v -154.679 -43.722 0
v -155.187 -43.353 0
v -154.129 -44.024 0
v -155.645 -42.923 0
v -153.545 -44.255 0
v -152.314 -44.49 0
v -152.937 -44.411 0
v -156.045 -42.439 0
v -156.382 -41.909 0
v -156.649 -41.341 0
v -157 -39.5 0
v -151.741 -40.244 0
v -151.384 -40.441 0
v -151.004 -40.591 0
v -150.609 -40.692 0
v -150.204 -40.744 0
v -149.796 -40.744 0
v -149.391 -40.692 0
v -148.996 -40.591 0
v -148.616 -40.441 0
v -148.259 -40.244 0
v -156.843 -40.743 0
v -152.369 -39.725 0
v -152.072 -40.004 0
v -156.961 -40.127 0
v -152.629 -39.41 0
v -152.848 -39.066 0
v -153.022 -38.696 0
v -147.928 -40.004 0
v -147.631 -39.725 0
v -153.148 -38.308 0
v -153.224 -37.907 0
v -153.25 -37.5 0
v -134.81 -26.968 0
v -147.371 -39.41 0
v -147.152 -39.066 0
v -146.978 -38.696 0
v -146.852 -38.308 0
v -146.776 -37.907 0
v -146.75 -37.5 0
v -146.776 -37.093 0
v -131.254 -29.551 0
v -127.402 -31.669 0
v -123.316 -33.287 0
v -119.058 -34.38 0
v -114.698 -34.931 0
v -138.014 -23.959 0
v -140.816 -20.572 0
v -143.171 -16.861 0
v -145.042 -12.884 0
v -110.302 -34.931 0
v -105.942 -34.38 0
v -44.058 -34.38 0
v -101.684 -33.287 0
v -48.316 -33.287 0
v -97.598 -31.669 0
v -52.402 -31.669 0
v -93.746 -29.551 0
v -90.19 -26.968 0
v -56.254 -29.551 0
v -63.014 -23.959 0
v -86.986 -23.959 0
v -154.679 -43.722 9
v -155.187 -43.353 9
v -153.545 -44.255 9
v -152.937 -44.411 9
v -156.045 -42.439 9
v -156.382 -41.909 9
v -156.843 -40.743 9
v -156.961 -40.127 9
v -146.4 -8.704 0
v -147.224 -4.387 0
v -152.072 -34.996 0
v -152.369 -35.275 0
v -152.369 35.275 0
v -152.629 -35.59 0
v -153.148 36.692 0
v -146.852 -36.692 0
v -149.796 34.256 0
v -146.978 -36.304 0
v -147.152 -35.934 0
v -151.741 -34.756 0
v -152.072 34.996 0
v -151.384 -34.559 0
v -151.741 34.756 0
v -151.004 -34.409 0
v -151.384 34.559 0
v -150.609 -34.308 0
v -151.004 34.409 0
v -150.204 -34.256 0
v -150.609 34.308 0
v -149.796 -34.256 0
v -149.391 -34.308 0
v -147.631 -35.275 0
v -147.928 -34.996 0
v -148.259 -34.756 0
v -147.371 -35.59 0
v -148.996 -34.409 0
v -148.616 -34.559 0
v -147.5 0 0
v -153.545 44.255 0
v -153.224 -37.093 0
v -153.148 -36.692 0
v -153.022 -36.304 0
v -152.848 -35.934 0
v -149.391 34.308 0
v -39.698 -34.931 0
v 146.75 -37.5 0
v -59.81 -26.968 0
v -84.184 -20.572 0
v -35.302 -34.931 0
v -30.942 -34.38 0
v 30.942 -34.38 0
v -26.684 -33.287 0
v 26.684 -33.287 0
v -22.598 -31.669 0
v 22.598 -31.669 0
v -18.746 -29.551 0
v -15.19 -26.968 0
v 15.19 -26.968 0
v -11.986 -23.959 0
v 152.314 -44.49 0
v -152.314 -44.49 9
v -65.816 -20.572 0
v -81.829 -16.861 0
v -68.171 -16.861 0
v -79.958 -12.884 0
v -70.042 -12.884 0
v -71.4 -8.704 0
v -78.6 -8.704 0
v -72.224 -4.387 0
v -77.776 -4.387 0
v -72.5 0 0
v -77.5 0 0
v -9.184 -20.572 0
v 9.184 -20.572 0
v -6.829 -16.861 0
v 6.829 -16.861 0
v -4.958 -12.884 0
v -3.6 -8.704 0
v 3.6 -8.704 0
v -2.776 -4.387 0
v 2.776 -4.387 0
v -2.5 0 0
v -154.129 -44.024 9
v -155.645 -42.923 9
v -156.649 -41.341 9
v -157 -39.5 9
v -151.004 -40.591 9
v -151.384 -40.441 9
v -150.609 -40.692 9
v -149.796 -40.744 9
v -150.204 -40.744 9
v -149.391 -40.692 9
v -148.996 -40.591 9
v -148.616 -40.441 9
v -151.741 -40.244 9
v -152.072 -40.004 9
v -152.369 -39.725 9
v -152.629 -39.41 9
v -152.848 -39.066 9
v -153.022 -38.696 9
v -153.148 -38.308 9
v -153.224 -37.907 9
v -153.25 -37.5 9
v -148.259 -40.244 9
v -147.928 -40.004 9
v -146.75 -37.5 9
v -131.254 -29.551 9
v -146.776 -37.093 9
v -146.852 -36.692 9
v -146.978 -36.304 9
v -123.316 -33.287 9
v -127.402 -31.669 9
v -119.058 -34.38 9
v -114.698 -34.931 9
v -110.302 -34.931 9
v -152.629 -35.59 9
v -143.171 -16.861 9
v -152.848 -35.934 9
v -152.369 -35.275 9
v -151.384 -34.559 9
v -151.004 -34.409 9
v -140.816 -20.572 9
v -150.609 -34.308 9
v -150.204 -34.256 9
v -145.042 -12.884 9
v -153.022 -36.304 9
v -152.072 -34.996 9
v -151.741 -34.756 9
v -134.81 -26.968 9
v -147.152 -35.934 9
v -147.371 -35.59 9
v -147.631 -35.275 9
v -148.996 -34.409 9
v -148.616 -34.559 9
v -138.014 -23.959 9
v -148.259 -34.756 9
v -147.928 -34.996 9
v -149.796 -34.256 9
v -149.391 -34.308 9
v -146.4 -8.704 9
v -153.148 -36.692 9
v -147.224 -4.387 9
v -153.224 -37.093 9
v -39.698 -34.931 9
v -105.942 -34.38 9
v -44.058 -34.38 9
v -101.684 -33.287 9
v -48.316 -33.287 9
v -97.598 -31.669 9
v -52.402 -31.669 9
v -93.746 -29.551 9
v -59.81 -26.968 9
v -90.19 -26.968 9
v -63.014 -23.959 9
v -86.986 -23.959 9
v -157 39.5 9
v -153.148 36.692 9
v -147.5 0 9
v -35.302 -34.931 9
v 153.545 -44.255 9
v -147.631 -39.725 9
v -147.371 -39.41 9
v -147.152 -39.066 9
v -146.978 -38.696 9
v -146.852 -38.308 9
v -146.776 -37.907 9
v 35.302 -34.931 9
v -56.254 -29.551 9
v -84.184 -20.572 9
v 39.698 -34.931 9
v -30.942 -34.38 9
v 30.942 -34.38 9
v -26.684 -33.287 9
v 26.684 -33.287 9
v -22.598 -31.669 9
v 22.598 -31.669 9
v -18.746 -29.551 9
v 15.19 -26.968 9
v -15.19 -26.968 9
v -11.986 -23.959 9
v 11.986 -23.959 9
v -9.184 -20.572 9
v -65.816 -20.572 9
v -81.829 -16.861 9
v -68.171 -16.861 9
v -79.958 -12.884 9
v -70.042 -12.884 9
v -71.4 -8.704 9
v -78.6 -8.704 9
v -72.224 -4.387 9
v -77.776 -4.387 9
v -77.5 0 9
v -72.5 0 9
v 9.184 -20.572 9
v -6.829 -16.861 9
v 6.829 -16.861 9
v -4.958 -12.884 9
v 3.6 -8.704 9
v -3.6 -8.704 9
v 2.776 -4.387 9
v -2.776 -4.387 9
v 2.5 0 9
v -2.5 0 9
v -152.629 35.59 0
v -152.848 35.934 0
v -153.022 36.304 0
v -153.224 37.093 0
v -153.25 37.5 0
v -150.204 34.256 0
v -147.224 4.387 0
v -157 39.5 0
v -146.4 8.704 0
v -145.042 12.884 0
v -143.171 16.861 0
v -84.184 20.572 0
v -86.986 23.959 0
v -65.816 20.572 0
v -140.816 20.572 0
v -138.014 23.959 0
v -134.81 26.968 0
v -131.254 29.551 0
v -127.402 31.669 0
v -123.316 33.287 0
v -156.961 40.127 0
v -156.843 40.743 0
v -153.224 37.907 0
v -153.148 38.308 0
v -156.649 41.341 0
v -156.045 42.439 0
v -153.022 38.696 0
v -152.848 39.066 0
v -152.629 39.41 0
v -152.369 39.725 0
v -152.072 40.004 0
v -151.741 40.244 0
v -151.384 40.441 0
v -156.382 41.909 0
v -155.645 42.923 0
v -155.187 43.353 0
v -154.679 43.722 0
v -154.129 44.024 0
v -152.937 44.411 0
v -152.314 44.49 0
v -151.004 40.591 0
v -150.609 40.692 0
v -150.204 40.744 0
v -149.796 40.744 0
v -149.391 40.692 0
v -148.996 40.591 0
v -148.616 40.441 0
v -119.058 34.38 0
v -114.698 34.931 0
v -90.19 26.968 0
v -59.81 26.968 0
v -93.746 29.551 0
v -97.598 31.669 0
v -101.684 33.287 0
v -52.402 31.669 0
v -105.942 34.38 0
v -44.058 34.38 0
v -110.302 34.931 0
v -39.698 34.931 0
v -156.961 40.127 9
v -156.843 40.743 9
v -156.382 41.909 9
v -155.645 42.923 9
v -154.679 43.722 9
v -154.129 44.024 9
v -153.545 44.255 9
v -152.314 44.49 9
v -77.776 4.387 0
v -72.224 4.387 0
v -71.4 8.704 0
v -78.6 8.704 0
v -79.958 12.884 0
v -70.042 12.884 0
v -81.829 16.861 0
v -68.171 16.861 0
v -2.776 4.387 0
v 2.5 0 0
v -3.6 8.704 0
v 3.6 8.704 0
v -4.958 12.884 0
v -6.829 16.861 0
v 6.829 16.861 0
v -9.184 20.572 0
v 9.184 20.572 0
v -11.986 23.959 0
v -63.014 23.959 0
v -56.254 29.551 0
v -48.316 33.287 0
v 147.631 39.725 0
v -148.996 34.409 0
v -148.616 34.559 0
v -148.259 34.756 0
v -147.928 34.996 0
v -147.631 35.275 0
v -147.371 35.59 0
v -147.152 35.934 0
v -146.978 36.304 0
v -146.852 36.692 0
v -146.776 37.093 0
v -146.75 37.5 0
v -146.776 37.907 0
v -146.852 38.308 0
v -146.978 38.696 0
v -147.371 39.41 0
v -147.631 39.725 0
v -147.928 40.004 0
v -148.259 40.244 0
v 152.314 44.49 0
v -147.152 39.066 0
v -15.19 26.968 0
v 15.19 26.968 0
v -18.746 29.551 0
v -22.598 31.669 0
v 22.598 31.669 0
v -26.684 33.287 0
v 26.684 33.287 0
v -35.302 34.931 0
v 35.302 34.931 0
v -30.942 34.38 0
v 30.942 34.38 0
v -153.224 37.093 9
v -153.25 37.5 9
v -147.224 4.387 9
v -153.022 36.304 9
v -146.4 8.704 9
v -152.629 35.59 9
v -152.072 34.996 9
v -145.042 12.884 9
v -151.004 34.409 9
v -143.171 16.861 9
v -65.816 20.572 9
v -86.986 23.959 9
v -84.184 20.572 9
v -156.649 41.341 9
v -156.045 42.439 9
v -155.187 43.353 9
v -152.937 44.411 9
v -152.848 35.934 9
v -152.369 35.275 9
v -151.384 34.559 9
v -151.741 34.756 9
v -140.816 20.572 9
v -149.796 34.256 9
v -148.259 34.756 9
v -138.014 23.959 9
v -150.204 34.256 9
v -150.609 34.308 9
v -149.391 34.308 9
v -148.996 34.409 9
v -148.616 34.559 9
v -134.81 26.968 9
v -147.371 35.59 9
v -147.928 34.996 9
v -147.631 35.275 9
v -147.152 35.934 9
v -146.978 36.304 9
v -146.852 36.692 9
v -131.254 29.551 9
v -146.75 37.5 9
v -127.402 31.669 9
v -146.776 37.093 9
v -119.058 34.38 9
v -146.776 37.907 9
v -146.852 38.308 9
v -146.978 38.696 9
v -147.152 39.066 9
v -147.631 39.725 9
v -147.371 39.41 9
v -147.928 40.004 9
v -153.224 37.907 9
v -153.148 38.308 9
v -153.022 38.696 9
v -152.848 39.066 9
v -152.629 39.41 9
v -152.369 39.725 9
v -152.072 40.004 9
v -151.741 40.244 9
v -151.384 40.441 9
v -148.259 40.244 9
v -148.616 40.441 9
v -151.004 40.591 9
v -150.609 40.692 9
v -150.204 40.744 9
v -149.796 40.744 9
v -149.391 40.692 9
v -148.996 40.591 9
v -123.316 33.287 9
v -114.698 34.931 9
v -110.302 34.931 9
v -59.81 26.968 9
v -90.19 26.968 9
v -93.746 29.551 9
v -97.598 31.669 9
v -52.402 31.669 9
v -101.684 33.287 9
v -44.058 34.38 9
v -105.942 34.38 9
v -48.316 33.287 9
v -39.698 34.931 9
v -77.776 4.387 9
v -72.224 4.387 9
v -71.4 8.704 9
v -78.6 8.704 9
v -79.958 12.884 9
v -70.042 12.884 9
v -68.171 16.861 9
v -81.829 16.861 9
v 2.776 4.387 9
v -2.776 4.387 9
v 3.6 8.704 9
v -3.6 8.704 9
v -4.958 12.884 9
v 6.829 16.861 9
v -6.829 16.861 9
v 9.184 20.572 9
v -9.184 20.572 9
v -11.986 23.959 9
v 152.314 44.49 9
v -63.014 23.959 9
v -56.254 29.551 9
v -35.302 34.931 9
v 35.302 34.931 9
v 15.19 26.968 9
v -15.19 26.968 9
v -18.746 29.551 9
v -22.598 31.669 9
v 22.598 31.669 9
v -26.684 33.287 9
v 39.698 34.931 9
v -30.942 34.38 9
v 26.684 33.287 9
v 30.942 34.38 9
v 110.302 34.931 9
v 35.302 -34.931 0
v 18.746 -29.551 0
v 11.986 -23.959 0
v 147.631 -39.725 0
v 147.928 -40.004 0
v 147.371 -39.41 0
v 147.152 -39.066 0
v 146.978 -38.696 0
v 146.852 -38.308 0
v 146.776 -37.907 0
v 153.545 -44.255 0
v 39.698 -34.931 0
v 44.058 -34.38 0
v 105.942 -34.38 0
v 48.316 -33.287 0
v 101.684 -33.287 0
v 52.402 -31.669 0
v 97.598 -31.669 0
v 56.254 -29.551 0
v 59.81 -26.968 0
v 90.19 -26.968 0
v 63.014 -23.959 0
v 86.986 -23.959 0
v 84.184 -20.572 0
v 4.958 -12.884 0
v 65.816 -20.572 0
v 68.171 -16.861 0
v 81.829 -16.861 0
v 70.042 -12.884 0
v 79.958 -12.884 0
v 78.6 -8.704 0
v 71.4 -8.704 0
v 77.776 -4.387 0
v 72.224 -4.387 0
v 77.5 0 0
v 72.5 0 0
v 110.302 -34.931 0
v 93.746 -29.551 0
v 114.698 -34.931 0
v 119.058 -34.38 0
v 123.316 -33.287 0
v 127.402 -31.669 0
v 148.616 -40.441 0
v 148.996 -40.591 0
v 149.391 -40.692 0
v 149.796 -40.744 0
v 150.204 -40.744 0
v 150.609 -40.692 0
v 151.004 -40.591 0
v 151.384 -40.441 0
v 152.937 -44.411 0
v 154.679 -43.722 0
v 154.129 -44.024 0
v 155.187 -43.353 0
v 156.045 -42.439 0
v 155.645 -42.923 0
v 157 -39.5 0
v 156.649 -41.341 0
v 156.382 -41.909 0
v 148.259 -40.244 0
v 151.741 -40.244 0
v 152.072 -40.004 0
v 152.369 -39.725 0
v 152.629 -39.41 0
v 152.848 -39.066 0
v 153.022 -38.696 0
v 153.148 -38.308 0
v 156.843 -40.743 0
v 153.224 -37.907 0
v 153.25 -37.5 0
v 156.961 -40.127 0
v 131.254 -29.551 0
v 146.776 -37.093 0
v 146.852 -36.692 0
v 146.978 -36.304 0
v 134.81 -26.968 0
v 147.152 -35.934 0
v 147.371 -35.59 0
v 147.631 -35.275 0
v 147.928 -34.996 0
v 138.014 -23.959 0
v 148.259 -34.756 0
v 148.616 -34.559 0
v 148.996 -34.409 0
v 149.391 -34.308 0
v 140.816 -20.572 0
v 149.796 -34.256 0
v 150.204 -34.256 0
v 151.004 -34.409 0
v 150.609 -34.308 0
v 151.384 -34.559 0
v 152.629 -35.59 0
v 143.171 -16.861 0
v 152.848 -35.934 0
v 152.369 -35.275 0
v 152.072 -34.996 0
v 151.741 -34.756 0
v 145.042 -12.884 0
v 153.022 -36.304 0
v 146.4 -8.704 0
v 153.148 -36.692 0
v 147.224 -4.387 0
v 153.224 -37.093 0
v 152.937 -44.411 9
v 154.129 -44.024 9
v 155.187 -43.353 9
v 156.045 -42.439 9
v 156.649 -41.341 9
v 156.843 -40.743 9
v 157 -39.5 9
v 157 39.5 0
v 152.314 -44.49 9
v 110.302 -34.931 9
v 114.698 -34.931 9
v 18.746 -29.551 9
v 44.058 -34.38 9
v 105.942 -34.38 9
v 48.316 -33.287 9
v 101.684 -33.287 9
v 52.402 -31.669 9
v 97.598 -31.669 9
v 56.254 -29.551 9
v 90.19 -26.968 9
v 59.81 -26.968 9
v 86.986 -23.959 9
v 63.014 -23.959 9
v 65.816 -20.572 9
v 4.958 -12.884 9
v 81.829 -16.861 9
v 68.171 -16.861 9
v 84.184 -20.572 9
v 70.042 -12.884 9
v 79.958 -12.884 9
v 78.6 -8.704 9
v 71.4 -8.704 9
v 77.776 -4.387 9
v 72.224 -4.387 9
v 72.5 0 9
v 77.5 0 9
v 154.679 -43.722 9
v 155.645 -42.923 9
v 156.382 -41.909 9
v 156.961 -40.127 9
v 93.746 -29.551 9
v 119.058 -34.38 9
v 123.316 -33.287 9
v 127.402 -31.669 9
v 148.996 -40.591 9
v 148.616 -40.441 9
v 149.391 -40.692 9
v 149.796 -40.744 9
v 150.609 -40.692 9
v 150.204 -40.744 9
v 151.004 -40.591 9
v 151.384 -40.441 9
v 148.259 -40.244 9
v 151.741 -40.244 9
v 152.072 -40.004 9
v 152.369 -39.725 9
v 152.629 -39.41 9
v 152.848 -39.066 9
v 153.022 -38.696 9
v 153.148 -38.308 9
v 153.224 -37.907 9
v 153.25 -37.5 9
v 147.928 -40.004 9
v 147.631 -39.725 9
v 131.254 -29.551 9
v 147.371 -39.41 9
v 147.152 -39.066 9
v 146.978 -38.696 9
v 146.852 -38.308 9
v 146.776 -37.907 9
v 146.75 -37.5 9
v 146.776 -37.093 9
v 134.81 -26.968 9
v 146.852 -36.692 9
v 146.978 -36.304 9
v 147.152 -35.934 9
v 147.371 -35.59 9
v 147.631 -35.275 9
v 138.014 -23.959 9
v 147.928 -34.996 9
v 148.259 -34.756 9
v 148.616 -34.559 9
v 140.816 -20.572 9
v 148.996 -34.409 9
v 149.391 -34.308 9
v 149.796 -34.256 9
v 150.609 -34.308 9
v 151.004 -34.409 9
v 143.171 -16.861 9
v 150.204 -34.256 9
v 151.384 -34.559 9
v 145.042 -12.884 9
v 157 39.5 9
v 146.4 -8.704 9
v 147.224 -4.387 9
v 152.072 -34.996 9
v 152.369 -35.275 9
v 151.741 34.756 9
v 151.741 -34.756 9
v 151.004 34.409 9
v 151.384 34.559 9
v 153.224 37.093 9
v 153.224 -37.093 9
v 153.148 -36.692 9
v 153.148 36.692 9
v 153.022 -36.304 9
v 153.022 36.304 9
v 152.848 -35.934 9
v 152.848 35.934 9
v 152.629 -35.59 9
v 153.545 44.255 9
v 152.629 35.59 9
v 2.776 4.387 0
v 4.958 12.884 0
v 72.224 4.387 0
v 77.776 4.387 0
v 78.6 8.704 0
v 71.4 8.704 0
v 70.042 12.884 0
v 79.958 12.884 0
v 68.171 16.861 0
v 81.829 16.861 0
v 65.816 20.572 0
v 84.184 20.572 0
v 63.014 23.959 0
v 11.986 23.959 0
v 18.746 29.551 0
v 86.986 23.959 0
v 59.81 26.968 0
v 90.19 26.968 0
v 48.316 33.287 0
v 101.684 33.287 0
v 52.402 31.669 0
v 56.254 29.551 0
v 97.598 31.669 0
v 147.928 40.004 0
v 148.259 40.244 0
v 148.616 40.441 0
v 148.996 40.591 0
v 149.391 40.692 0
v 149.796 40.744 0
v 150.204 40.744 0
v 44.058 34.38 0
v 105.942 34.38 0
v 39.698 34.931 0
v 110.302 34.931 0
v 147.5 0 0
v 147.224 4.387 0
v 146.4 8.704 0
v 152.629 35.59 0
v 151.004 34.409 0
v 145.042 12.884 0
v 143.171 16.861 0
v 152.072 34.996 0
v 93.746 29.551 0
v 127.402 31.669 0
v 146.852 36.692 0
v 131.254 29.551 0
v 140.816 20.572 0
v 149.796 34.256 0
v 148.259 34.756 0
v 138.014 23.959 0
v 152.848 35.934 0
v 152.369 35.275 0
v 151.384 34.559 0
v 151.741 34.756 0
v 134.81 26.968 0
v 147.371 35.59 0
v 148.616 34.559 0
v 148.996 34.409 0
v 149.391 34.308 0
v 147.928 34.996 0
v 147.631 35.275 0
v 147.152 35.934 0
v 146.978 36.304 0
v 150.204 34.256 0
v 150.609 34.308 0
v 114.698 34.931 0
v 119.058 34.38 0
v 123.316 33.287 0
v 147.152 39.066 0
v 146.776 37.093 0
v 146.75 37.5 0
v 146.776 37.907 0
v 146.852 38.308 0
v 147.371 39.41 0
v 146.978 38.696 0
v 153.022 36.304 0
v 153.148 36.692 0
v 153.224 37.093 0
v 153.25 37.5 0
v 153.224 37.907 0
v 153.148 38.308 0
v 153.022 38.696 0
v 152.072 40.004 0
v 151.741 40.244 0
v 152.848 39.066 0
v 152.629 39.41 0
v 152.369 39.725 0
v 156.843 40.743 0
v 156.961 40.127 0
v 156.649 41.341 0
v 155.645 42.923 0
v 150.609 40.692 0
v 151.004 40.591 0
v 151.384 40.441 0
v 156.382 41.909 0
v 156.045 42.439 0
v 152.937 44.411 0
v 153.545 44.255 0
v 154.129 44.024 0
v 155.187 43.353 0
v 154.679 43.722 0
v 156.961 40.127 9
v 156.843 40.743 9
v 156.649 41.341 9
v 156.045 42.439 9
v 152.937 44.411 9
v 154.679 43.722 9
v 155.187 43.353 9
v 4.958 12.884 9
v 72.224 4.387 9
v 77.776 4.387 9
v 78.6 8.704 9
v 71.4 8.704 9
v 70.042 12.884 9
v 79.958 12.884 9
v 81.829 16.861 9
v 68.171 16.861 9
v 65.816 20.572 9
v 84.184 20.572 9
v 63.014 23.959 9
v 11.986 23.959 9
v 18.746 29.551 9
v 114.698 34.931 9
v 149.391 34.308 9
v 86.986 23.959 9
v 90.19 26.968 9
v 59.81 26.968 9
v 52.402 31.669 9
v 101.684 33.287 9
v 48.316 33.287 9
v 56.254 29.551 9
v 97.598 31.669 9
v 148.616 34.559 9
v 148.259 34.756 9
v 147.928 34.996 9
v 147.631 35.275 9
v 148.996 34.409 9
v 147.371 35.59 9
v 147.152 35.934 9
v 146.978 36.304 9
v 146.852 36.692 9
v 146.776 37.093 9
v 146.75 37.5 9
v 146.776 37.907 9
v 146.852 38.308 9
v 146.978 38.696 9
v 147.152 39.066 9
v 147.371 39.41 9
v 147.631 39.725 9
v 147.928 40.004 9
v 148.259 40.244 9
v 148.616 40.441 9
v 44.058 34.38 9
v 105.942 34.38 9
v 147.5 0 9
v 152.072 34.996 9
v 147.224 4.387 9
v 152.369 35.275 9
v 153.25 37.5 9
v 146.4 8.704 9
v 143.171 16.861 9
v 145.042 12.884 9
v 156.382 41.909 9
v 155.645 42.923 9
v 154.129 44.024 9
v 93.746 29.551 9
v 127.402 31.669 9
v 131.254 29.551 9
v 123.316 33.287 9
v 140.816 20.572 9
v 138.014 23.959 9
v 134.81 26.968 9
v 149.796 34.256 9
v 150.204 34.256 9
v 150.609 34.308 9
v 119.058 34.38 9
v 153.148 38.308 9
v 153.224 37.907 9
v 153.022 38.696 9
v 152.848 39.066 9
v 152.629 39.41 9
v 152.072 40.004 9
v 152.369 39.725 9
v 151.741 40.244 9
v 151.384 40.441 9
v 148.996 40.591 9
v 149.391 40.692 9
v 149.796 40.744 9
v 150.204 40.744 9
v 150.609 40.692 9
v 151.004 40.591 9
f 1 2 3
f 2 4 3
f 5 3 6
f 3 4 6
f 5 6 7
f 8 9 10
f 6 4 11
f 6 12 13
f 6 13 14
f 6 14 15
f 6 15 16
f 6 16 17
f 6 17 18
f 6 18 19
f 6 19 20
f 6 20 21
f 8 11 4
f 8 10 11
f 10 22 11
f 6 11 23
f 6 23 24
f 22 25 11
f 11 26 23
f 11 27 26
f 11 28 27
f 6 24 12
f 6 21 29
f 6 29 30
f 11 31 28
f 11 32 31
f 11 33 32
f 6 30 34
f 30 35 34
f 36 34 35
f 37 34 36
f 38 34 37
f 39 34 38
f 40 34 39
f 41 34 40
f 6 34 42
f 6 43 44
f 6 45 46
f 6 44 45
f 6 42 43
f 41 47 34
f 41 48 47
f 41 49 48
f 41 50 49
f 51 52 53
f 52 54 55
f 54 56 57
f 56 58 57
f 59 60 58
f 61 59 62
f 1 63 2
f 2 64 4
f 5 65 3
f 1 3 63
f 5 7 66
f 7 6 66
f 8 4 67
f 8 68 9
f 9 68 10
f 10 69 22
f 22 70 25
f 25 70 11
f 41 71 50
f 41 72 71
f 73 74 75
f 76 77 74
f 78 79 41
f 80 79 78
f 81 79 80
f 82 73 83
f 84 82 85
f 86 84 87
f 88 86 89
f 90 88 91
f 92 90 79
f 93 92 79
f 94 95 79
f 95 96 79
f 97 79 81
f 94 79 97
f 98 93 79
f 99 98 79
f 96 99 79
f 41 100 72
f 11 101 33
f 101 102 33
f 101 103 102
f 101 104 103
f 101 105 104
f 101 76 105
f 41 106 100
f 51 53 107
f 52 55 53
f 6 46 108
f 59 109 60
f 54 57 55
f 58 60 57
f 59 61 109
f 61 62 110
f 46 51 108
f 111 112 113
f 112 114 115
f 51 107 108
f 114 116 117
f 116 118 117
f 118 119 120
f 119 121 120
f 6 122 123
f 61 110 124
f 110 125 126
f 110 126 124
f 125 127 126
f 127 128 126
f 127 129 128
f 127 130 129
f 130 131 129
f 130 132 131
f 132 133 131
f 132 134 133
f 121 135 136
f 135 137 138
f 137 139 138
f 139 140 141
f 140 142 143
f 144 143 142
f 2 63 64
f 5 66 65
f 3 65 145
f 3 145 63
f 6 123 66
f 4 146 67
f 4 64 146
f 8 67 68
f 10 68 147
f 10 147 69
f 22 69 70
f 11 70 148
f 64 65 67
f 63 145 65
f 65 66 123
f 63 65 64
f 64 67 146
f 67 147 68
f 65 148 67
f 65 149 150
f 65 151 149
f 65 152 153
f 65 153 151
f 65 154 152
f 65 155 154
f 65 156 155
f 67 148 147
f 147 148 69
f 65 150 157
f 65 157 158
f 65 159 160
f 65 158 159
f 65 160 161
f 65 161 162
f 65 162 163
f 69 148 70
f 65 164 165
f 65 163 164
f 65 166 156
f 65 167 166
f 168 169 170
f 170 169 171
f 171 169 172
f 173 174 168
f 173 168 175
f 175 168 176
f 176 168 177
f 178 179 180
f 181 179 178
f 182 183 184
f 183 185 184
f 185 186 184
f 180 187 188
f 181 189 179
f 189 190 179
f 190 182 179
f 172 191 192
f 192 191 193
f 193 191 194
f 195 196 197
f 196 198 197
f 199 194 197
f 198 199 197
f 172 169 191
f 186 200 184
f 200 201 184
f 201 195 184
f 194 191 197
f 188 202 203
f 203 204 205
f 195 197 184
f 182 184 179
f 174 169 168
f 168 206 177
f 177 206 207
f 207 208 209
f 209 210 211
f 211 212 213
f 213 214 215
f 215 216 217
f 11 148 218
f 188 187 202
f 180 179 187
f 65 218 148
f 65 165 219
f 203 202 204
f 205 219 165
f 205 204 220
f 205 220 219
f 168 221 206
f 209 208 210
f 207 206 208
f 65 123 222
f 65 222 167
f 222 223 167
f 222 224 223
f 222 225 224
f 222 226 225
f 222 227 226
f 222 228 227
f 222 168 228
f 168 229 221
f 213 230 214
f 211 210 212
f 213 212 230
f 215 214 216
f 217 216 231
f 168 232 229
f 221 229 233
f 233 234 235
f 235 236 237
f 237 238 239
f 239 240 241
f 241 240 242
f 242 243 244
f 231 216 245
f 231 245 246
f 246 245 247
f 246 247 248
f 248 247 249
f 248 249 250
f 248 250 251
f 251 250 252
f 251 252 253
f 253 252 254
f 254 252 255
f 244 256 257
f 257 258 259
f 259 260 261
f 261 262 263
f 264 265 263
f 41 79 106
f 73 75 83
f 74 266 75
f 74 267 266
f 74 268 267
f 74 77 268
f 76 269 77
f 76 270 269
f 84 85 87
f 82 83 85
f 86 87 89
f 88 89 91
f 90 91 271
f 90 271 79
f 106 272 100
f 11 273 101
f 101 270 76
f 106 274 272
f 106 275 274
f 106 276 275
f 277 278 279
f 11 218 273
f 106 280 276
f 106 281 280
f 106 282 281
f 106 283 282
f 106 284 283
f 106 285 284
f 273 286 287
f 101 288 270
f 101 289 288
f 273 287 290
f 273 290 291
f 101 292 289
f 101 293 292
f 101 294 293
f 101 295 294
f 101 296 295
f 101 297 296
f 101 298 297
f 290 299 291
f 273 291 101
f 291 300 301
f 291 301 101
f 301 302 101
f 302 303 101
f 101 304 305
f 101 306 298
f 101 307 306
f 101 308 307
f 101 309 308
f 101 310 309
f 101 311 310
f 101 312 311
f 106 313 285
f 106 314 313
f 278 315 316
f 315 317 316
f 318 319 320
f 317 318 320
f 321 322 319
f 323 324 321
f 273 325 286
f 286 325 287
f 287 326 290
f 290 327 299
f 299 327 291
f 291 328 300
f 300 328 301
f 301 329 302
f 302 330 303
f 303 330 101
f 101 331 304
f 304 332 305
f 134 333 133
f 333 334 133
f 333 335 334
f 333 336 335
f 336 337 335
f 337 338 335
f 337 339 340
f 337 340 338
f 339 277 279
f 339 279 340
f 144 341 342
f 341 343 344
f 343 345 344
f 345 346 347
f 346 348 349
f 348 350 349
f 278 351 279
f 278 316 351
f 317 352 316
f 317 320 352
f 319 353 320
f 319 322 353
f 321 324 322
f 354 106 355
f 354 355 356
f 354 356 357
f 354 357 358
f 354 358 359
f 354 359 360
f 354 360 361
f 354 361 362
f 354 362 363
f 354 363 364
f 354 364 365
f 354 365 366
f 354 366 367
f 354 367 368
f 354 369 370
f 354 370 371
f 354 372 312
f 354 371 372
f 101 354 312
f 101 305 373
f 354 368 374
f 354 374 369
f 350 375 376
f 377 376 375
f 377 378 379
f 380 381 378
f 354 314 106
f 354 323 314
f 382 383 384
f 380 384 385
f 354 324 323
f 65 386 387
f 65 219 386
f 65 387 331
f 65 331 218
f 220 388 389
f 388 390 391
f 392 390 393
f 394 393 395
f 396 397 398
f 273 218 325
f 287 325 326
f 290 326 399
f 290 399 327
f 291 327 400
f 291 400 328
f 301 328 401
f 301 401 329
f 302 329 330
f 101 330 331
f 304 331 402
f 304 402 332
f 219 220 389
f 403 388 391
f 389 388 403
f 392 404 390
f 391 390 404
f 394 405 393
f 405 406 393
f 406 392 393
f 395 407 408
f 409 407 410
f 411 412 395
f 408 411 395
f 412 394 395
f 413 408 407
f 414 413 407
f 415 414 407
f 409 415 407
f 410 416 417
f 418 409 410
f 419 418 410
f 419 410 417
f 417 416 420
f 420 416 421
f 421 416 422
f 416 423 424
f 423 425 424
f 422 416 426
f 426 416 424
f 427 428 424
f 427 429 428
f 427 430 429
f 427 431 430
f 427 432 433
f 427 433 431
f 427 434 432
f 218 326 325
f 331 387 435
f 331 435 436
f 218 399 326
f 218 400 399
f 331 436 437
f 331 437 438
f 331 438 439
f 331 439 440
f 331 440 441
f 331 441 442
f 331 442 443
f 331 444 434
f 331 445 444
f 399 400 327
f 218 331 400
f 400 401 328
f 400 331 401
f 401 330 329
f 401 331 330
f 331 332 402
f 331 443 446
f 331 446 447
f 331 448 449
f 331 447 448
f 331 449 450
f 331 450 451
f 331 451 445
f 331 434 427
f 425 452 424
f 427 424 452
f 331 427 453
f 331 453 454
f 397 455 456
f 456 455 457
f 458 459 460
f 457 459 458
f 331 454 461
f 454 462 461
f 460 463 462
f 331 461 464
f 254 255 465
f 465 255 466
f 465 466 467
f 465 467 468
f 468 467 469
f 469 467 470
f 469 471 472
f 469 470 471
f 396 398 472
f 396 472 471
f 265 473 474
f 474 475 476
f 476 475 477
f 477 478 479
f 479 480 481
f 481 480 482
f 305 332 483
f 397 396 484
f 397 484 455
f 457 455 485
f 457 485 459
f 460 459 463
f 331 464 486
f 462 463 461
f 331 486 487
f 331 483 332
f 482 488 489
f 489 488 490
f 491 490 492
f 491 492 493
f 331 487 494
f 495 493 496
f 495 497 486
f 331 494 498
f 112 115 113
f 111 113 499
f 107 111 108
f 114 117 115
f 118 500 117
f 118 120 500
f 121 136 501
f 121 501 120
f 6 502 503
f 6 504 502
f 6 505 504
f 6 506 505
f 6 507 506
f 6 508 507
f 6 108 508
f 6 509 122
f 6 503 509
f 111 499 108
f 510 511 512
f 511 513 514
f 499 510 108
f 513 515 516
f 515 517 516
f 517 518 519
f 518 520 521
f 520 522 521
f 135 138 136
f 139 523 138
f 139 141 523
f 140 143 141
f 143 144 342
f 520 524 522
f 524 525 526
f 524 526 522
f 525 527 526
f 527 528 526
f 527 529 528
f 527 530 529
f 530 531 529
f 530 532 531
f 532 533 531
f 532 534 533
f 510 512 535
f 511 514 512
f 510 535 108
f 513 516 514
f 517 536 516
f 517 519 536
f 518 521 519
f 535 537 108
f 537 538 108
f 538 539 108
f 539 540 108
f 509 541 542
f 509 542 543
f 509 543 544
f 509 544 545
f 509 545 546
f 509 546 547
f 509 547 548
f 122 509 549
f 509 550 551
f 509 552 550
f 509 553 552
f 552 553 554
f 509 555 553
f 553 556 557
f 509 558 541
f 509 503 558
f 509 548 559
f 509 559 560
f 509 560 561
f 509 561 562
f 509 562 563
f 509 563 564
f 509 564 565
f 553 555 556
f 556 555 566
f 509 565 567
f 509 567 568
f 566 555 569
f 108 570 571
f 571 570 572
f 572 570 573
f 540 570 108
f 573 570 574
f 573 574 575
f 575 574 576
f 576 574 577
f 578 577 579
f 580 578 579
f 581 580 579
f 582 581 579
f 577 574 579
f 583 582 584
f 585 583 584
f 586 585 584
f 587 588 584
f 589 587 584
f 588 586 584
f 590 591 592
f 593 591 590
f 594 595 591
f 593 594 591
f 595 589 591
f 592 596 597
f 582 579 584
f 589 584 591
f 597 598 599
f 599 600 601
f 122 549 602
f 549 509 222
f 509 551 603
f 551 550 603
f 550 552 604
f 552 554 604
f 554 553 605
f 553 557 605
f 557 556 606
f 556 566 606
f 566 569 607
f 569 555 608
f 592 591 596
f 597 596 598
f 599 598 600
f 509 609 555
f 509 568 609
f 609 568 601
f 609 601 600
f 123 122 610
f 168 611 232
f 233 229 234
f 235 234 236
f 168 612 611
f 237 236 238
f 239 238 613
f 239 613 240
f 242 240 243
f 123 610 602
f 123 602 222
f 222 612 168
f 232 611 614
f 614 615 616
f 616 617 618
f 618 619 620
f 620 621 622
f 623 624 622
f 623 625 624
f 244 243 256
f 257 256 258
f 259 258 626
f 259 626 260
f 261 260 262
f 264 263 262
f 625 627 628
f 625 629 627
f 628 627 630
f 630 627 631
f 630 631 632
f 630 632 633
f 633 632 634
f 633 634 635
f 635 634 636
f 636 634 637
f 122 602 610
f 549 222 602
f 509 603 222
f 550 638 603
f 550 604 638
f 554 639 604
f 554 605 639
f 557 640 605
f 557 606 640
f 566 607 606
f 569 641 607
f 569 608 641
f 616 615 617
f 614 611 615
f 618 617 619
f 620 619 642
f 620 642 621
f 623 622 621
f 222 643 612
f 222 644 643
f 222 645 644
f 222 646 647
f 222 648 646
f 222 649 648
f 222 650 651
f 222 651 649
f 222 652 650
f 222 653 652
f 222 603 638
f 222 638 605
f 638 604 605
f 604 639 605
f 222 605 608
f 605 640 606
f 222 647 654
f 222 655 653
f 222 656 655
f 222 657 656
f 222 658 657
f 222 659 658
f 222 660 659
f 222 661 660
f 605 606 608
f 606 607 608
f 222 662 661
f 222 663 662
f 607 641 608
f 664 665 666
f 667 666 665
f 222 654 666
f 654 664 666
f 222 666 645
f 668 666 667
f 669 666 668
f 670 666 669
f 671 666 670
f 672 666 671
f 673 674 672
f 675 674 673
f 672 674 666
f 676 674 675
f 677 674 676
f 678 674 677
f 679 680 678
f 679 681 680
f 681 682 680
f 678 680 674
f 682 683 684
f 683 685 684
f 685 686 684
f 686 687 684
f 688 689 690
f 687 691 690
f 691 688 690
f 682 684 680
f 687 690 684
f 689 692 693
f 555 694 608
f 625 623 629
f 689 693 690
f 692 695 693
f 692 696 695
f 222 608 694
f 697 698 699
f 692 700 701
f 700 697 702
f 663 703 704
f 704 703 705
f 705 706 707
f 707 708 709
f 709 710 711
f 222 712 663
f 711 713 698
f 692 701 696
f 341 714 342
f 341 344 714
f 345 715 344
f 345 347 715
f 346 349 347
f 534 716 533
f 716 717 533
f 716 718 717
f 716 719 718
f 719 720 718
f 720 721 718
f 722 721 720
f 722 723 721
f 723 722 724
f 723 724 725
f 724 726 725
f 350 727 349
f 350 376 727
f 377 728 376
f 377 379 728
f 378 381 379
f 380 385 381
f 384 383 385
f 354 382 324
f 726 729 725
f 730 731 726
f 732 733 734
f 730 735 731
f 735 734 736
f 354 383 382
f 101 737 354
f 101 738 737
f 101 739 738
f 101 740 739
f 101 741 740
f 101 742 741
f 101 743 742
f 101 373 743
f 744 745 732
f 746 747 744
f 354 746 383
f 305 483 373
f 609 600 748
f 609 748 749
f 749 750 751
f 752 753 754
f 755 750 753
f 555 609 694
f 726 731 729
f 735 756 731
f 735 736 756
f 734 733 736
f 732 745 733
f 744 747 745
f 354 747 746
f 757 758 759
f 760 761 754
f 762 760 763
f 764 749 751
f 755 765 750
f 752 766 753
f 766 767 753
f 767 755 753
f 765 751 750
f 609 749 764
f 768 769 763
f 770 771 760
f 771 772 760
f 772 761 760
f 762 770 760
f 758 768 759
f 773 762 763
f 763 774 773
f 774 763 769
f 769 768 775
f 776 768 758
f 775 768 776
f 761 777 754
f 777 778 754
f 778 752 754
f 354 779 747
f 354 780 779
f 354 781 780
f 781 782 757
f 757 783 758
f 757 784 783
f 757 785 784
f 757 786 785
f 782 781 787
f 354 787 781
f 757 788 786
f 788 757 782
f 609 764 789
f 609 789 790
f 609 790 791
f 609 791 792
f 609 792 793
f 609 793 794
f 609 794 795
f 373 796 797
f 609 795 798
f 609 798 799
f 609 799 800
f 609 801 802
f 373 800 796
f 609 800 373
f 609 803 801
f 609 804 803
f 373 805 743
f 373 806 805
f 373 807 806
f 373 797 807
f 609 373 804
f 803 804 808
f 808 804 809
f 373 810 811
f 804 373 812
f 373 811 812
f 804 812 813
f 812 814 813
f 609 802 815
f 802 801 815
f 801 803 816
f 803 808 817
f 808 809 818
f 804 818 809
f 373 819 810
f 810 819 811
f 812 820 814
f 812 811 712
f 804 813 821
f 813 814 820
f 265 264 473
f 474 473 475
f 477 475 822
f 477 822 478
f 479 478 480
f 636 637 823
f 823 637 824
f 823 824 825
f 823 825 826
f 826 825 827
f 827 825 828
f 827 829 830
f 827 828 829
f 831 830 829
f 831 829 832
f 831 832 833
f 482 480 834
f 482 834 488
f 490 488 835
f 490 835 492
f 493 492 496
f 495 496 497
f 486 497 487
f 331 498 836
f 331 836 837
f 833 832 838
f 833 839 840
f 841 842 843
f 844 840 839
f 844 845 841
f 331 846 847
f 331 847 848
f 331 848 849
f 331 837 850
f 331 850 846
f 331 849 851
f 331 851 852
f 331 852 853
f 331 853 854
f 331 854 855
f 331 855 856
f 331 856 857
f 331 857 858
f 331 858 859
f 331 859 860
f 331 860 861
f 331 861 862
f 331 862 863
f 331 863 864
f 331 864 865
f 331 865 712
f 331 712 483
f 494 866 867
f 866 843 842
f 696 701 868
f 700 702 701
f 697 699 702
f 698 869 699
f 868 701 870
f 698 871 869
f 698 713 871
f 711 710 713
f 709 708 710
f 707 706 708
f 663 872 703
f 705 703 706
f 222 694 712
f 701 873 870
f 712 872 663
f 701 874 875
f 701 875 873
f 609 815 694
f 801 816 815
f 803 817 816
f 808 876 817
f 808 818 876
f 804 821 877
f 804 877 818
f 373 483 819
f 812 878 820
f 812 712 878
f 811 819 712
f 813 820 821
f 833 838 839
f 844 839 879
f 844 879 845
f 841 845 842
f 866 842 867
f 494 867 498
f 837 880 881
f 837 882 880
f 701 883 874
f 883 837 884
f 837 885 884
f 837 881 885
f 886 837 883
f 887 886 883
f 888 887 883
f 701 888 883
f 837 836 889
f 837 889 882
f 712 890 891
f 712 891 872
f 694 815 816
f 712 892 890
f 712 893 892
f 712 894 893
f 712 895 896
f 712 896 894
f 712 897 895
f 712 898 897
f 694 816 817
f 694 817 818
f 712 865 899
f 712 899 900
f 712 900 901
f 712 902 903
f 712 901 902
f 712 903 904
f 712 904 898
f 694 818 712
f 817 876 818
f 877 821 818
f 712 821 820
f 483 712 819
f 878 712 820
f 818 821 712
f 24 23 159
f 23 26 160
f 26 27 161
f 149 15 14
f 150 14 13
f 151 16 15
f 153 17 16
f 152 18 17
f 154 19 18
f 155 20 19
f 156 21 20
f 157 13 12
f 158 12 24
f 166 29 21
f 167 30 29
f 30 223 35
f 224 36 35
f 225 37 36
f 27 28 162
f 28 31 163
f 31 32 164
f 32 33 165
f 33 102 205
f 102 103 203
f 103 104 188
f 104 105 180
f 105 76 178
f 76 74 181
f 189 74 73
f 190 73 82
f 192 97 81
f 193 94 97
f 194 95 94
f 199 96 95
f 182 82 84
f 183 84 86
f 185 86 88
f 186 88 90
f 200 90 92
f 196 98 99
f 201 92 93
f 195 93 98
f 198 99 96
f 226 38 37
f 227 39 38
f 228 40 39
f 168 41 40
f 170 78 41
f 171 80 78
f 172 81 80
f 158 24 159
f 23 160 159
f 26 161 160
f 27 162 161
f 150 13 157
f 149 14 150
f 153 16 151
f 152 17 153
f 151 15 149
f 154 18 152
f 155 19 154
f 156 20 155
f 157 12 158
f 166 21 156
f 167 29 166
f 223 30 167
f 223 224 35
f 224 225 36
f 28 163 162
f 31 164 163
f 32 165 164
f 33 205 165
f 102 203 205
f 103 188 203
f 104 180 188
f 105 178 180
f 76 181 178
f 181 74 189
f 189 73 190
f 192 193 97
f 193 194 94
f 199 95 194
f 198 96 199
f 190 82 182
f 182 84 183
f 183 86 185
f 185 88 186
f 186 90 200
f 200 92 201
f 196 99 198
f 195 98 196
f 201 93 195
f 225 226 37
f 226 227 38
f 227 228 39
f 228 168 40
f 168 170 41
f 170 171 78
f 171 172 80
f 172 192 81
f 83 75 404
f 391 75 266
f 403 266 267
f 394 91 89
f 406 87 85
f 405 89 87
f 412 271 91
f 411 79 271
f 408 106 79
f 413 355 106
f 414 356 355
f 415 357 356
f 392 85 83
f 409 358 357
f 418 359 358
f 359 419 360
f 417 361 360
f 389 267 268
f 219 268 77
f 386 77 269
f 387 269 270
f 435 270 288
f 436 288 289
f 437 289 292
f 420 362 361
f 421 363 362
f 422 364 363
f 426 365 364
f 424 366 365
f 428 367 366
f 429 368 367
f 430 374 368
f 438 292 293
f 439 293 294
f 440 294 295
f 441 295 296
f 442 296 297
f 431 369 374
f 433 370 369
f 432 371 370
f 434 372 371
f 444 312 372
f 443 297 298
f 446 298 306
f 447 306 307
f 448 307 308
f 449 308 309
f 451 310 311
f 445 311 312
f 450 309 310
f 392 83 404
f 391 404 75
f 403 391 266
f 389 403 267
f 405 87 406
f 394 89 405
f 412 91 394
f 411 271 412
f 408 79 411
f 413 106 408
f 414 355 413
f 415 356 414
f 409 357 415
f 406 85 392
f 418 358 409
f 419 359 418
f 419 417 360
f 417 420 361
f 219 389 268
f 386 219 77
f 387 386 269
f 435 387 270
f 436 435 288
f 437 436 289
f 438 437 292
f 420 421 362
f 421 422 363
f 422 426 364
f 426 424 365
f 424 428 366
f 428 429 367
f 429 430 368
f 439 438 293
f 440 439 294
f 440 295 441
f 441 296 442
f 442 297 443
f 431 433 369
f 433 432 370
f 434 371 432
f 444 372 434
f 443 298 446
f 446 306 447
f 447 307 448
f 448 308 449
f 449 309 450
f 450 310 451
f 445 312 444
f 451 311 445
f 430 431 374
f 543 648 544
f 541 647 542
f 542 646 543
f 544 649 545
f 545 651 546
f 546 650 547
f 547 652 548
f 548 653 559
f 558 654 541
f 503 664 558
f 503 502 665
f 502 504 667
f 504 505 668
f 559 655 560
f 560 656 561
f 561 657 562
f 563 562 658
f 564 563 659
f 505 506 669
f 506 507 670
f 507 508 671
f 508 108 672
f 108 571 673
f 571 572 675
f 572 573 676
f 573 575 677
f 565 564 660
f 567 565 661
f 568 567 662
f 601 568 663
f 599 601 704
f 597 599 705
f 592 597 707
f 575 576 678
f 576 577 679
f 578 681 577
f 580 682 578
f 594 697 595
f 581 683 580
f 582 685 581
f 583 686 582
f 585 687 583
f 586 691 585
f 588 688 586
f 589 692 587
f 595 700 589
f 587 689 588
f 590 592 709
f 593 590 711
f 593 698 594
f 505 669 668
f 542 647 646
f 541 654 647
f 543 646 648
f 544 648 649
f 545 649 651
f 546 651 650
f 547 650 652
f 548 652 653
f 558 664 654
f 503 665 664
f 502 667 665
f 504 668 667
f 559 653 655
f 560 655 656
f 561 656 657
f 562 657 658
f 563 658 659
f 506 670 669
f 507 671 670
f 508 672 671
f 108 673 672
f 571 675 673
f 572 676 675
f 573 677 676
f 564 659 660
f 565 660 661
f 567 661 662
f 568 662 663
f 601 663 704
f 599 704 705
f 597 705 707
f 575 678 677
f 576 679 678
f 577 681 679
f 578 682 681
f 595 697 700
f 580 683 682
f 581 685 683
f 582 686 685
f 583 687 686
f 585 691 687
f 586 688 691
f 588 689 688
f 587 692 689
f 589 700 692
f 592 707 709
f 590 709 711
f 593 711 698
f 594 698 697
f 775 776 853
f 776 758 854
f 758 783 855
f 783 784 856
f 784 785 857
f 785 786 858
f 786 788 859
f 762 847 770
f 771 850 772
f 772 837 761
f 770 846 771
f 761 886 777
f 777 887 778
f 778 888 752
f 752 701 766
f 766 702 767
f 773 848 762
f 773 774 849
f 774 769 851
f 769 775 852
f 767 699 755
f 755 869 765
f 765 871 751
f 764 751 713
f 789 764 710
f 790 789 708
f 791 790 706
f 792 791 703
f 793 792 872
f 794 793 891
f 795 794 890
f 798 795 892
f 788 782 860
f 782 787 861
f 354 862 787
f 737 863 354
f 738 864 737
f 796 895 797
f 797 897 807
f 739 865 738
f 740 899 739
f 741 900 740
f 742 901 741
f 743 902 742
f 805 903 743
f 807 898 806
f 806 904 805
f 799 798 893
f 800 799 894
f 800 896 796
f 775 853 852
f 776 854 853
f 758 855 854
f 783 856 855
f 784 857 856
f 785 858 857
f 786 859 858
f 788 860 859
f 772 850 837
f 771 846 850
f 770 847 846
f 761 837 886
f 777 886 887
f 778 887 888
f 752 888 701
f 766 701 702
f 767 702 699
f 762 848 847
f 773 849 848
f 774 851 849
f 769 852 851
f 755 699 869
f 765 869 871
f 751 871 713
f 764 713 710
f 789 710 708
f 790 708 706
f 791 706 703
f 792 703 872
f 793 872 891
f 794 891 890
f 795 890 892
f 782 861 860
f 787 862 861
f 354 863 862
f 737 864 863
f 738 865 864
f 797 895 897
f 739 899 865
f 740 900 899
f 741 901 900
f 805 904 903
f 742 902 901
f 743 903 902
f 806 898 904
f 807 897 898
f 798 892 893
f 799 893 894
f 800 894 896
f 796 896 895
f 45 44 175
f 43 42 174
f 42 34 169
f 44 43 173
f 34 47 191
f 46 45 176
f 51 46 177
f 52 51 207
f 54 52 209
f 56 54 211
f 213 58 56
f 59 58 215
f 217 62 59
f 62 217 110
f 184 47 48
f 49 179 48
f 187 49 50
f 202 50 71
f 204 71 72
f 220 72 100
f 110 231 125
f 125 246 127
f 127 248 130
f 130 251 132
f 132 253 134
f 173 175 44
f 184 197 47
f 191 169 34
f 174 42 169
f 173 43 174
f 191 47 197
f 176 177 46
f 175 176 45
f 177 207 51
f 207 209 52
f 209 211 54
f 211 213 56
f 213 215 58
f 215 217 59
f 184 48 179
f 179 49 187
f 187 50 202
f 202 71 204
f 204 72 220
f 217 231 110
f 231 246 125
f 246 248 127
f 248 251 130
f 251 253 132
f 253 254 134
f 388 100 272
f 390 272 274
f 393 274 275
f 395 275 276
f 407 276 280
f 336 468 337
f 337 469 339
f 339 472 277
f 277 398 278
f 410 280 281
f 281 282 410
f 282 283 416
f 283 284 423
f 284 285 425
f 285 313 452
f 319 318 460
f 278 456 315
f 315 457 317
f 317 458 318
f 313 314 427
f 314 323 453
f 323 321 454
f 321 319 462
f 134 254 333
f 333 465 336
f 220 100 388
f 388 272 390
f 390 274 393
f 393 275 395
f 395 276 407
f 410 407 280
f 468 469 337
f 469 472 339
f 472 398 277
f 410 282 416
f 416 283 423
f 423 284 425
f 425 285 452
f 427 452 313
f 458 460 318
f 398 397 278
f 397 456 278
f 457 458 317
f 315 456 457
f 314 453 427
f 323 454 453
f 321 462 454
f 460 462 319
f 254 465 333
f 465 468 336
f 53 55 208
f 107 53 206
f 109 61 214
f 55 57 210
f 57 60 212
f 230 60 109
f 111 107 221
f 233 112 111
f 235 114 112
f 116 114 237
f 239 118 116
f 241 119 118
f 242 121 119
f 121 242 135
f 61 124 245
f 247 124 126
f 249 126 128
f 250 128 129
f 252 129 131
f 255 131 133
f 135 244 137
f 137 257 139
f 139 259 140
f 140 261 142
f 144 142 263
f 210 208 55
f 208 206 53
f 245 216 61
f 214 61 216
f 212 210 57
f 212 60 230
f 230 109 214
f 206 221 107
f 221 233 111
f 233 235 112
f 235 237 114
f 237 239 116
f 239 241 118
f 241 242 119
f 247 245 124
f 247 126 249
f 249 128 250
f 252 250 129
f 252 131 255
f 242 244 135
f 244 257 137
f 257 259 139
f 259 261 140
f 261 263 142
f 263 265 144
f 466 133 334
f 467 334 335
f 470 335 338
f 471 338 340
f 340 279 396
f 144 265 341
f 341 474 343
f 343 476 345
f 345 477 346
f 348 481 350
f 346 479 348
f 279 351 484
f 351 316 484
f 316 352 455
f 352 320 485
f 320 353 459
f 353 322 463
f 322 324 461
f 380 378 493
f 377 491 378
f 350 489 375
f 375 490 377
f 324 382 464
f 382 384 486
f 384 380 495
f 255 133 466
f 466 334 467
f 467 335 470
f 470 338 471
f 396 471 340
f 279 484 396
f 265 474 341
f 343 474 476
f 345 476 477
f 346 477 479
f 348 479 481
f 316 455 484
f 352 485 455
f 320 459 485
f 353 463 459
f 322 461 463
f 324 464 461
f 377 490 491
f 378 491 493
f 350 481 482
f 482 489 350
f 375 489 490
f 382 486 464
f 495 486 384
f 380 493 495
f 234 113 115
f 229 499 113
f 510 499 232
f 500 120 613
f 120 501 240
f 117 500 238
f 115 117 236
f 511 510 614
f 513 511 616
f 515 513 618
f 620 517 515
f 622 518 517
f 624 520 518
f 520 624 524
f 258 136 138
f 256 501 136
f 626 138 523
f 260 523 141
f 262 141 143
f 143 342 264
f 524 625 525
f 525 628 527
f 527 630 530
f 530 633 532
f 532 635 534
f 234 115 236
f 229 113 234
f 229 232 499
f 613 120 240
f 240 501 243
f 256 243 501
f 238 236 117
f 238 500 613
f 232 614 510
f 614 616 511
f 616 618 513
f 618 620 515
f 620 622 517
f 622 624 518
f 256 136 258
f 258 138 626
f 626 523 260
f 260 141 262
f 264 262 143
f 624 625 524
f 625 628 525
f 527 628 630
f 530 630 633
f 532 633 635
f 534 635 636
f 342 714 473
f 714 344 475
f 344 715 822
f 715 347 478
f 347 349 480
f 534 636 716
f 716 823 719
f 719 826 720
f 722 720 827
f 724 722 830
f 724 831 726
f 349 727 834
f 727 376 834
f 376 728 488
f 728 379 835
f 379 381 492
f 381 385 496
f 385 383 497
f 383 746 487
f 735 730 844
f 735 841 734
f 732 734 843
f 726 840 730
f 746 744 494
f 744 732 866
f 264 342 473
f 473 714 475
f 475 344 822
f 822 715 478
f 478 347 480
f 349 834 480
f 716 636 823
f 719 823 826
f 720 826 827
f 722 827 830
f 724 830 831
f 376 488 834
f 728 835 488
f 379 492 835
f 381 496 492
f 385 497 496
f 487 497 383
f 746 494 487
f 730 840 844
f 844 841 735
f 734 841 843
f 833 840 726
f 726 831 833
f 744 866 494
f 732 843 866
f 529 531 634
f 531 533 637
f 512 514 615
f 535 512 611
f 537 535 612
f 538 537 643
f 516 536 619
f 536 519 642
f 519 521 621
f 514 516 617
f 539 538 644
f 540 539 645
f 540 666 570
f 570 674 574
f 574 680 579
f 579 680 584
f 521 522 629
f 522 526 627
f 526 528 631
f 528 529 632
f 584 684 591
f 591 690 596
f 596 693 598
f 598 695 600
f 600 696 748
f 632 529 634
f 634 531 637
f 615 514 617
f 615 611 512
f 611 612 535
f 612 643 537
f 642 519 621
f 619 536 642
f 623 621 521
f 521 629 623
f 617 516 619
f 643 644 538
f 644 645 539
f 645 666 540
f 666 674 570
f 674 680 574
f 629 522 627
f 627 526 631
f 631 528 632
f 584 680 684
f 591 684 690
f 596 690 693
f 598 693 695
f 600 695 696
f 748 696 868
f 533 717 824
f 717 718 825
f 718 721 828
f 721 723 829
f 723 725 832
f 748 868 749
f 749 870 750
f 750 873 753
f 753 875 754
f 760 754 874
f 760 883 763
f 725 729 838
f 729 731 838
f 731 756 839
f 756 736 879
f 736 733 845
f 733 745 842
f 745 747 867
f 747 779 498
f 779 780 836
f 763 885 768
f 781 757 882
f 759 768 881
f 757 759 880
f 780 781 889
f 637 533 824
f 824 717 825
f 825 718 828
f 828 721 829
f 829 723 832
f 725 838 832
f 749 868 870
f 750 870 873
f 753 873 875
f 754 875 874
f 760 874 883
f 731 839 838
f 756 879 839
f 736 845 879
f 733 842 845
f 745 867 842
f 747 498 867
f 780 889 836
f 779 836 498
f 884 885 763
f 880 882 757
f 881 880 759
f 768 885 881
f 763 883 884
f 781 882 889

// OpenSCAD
$fn = 50;

difference() {
	union() {
		hull() {
			translate(v = [-152.0, 39.5, 0]) {
				cylinder(h = 9, r = 5);
			}
			translate(v = [152.0, 39.5, 0]) {
				cylinder(h = 9, r = 5);
			}
			translate(v = [-152.0, -39.5, 0]) {
				cylinder(h = 9, r = 5);
			}
			translate(v = [152.0, -39.5, 0]) {
				cylinder(h = 9, r = 5);
			}
		}
	}
	union() {
		translate(v = [-150.0, -37.5, -100.0]) {
			cylinder(h = 200, r = 3.25);
		}
		translate(v = [-150.0, 37.5, -100.0]) {
			cylinder(h = 200, r = 3.25);
		}
		translate(v = [150.0, -37.5, -100.0]) {
			cylinder(h = 200, r = 3.25);
		}
		translate(v = [150.0, 37.5, -100.0]) {
			cylinder(h = 200, r = 3.25);
		}
		translate(v = [-150.0, -37.5, -100.0]) {
			cylinder(h = 200, r = 1.8);
		}
		translate(v = [-150.0, 37.5, -100.0]) {
			cylinder(h = 200, r = 1.8);
		}
		translate(v = [150.0, -37.5, -100.0]) {
			cylinder(h = 200, r = 1.8);
		}
		translate(v = [150.0, 37.5, -100.0]) {
			cylinder(h = 200, r = 1.8);
		}
		translate(v = [-112.5, 0, 0.0]) {
			cylinder(h = 9, r = 35.0);
		}
		translate(v = [-37.5, 0, 0.0]) {
			cylinder(h = 9, r = 35.0);
		}
		translate(v = [37.5, 0, 0.0]) {
			cylinder(h = 9, r = 35.0);
		}
		translate(v = [112.5, 0, 0.0]) {
			cylinder(h = 9, r = 35.0);
		}
	}
}
